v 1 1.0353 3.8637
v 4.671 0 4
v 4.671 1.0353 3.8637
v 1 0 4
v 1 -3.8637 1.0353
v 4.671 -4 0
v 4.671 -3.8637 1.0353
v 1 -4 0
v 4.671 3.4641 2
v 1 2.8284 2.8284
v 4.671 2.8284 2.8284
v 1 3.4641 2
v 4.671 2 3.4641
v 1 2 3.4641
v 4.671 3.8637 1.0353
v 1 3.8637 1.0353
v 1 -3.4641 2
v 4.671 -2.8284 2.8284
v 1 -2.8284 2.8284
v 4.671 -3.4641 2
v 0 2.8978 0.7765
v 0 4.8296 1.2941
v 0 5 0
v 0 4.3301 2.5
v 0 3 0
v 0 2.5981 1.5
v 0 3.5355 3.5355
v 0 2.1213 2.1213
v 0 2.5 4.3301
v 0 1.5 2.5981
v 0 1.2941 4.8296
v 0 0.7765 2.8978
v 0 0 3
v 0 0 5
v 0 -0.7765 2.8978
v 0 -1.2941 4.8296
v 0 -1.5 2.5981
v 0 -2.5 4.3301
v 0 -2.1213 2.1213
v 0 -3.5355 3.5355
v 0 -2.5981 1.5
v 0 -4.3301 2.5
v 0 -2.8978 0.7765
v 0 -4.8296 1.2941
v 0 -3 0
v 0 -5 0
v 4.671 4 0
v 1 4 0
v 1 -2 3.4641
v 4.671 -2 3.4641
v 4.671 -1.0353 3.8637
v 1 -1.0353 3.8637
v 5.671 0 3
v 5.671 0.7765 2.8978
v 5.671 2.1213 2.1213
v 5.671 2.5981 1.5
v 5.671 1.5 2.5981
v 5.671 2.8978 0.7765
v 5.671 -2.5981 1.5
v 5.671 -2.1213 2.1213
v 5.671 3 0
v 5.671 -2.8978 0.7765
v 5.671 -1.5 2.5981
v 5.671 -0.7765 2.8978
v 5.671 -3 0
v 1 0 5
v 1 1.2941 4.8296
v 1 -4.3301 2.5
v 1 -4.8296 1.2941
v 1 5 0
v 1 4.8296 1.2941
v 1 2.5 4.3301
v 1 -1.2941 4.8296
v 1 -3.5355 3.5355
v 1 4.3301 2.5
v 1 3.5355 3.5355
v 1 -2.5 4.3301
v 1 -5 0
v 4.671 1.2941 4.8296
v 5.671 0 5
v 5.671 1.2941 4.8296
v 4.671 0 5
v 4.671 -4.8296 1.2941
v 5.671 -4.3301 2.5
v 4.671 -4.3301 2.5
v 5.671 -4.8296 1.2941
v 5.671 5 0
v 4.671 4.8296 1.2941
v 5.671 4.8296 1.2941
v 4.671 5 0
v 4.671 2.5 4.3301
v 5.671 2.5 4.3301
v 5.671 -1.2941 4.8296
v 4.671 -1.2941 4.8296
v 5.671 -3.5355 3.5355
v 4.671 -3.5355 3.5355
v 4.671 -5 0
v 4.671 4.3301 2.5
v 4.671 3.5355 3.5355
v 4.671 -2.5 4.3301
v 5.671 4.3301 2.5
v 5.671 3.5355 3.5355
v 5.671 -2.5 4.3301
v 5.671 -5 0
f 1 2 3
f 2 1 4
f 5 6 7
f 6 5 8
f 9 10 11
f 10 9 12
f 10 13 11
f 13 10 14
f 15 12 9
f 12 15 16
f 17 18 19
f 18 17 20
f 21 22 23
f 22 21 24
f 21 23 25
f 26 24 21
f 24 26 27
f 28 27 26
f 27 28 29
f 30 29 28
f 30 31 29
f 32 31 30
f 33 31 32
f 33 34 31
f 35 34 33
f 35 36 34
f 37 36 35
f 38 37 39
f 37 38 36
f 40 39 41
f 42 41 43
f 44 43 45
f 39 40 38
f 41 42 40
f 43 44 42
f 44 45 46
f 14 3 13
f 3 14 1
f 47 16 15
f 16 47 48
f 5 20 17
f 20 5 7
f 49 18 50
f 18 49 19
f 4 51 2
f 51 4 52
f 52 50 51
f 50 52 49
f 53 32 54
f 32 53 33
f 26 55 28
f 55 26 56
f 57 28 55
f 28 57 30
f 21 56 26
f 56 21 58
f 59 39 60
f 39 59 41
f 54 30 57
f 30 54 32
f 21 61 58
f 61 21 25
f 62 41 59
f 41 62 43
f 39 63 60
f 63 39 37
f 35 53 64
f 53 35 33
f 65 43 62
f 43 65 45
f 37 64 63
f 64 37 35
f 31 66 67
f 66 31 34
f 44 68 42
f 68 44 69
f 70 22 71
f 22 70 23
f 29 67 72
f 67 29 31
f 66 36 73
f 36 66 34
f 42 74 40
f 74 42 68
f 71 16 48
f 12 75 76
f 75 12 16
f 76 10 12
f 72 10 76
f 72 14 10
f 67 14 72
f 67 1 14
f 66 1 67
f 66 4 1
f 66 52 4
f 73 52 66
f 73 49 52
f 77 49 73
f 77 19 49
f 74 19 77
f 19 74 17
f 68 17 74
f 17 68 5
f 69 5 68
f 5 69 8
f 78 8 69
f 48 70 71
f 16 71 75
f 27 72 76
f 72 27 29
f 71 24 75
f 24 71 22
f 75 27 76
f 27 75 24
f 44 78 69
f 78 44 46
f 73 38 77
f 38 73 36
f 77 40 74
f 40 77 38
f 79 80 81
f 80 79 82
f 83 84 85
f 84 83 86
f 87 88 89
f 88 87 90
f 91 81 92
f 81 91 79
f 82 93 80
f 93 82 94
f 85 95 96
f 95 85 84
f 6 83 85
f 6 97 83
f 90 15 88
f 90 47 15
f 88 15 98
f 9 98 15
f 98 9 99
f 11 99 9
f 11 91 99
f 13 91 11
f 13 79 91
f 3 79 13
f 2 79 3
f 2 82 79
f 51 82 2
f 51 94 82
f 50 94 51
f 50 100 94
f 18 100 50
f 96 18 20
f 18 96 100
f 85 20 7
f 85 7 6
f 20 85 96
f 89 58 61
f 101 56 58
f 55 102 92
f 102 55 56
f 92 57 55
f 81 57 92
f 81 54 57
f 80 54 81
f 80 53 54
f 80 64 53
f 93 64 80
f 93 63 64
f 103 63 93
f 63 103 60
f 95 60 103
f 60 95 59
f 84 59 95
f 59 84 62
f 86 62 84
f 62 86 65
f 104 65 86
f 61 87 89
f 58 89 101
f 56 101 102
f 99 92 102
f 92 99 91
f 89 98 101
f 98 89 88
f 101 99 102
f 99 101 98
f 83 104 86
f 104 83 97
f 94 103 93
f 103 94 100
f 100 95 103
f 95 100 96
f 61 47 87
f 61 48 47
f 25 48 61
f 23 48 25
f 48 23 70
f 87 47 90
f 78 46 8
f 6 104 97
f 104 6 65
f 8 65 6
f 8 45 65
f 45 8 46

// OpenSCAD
// file: ../build_environments.scad
// build_environments.scad: modules to build level sections
//

module pool(diameter=10.0, wall_height=2.0, step_width=3.0, connections=[])
{
    difference() {
        union() {
        difference() {
            cylinder(h=0.5,r1=diameter+step_width,r2=diameter+step_width,$fn=48);
            translate([0,0,-0.1])
                cylinder(h=0.7,r1=diameter,r2=diameter,$fn=48);
        }
        difference() {
            cylinder(h=wall_height,r1=diameter+step_width+1.0,r2=diameter+step_width+1.0,$fn=48);
            translate([0,0,-0.1])
                cylinder(h=wall_height+0.2,r1=diameter+step_width,r2=diameter+step_width,$fn=48);
        }
        }
    
        for (c = connections)
        {
            rotate([0,90,0]) {
                angle = atan2(c[1],c[0]);
                rotate([-angle,0,0]) {
                    cylinder(h=diameter+5.0,r1=c[2],r2=c[2],$fn=48);
                }
            }
        }
    }
}

module straight(length=10.0, width=2.0, dy1=0.0, dy2=0.0, dz=0.0)
{
    dims = [0, 0, 0, 0, 0, (dz/length)];
    matrix = [
        [ 1, dims[0], dims[1], 0 ],
        [ dims[2], 1, dims[4], 0 ],
        [ dims[5], dims[3], 1, 0 ],
        [ 0, 0, 0, 1 ]
    ];
    multmatrix(matrix)
    difference() {
        translate([dy1,0,0])
        union() {
            rotate([0,90,0]) {
                difference() {
                    cylinder(h=(length-dy1-dy2),r1=width+1.0,r2=width+1.0,$fn=24);
                    translate([0,0,-0.1])
                        cylinder(h=(length-dy1-dy2+0.2),r1=width,r2=width,$fn=24);
                }
                difference() {
                    cylinder(h=1.0,r1=width+2.0,r2=width+2.0,$fn=24);
                    translate([0,0,-0.1])
                        cylinder(h=1.2,r1=width,r2=width,$fn=24);
                }
                translate([0,0,(length-dy1-dy2)-1.0]) {
                    difference() {
                        cylinder(h=1.0,r1=width+2.0,r2=width+2.0,$fn=24);
                        translate([0,0,-0.1])
                            cylinder(h=1.2,r1=width,r2=width,$fn=24);
                    }
                }
            }
        }
        translate([0,0,-(2*width+4.0)/2])
            cube([3*length,3*length,2*width+4.0],center=true);
    }
}

module curve(p0=[0,0], center=[0,0], dir=1, angle=0.0, width=2.0)
{
    radius = sqrt((p0[0]-center[0])*(p0[0]-center[0]) + (p0[1]-center[1])*(p0[1]-center[1]));
    if (dir == 0) {
        difference() {
            rotate([0,0,-90])
            difference() {
                rotate_extrude(angle = angle, convexity = 10, $fn=32)
                    translate([radius, 0, 0])
                        circle(r = width+1.0,$fn=24);
                rotate([0,0,-1.0])
                    rotate_extrude(angle = angle+2.0, convexity = 10, $fn=32)
                        translate([radius, 0, 0])
                            circle(r = width,$fn=24);
            }
            translate([0,0,-(2*width+4.0)/2])
                cube([5*radius,5*radius,2*width+4.0],center=true);
        }
    }
    else {
        difference() {
            rotate([0,0,90])
            difference() {
                rotate_extrude(angle = -angle, convexity = 10, $fn=32)
                    translate([radius, 0, 0])
                        circle(r = width+1.0,$fn=24);
                rotate([0,0,1.0])
                    rotate_extrude(angle = -angle-2.0, convexity = 10, $fn=32)
                        translate([radius, 0, 0])
                            circle(r = width,$fn=24);
            }
            translate([0,0,-(2*width+4.0)/2])
                cube([5*radius,5*radius,2*width+4.0],center=true);
        }
    }

}

// test pool
//pool(diameter=12.0000, wall_height=3.0000, step_width=3.0000, connections=[[0.0000,-26.0000,2.0000], [23.6074,0.0000,2.0000]]);

// test straight, slope
//straight(length=26.0000, width=2.0000, dy1=11.8322, dy2=6.7082, dz=0.0000);
//straight(length=29.1549, width=12.0000, dy1=0.0000, dy2=0.0000, dz=-15.0000);

// test curve
//curve(p0=[23.6074, 0.0000], center=[23.6074, 5.0000], dir=0, angle=60.1011, width=2.0000);
//curve(p0=[33.6426, 12.4219], center=[37.9771, 9.9295], dir=1, angle=120.4627, width=2.0000);
// main file
use <../build_environments.scad>;
straight(length=5.6710, width=3.0000, dy1=0.0000, dy2=0.0000, dz=0.0000);
